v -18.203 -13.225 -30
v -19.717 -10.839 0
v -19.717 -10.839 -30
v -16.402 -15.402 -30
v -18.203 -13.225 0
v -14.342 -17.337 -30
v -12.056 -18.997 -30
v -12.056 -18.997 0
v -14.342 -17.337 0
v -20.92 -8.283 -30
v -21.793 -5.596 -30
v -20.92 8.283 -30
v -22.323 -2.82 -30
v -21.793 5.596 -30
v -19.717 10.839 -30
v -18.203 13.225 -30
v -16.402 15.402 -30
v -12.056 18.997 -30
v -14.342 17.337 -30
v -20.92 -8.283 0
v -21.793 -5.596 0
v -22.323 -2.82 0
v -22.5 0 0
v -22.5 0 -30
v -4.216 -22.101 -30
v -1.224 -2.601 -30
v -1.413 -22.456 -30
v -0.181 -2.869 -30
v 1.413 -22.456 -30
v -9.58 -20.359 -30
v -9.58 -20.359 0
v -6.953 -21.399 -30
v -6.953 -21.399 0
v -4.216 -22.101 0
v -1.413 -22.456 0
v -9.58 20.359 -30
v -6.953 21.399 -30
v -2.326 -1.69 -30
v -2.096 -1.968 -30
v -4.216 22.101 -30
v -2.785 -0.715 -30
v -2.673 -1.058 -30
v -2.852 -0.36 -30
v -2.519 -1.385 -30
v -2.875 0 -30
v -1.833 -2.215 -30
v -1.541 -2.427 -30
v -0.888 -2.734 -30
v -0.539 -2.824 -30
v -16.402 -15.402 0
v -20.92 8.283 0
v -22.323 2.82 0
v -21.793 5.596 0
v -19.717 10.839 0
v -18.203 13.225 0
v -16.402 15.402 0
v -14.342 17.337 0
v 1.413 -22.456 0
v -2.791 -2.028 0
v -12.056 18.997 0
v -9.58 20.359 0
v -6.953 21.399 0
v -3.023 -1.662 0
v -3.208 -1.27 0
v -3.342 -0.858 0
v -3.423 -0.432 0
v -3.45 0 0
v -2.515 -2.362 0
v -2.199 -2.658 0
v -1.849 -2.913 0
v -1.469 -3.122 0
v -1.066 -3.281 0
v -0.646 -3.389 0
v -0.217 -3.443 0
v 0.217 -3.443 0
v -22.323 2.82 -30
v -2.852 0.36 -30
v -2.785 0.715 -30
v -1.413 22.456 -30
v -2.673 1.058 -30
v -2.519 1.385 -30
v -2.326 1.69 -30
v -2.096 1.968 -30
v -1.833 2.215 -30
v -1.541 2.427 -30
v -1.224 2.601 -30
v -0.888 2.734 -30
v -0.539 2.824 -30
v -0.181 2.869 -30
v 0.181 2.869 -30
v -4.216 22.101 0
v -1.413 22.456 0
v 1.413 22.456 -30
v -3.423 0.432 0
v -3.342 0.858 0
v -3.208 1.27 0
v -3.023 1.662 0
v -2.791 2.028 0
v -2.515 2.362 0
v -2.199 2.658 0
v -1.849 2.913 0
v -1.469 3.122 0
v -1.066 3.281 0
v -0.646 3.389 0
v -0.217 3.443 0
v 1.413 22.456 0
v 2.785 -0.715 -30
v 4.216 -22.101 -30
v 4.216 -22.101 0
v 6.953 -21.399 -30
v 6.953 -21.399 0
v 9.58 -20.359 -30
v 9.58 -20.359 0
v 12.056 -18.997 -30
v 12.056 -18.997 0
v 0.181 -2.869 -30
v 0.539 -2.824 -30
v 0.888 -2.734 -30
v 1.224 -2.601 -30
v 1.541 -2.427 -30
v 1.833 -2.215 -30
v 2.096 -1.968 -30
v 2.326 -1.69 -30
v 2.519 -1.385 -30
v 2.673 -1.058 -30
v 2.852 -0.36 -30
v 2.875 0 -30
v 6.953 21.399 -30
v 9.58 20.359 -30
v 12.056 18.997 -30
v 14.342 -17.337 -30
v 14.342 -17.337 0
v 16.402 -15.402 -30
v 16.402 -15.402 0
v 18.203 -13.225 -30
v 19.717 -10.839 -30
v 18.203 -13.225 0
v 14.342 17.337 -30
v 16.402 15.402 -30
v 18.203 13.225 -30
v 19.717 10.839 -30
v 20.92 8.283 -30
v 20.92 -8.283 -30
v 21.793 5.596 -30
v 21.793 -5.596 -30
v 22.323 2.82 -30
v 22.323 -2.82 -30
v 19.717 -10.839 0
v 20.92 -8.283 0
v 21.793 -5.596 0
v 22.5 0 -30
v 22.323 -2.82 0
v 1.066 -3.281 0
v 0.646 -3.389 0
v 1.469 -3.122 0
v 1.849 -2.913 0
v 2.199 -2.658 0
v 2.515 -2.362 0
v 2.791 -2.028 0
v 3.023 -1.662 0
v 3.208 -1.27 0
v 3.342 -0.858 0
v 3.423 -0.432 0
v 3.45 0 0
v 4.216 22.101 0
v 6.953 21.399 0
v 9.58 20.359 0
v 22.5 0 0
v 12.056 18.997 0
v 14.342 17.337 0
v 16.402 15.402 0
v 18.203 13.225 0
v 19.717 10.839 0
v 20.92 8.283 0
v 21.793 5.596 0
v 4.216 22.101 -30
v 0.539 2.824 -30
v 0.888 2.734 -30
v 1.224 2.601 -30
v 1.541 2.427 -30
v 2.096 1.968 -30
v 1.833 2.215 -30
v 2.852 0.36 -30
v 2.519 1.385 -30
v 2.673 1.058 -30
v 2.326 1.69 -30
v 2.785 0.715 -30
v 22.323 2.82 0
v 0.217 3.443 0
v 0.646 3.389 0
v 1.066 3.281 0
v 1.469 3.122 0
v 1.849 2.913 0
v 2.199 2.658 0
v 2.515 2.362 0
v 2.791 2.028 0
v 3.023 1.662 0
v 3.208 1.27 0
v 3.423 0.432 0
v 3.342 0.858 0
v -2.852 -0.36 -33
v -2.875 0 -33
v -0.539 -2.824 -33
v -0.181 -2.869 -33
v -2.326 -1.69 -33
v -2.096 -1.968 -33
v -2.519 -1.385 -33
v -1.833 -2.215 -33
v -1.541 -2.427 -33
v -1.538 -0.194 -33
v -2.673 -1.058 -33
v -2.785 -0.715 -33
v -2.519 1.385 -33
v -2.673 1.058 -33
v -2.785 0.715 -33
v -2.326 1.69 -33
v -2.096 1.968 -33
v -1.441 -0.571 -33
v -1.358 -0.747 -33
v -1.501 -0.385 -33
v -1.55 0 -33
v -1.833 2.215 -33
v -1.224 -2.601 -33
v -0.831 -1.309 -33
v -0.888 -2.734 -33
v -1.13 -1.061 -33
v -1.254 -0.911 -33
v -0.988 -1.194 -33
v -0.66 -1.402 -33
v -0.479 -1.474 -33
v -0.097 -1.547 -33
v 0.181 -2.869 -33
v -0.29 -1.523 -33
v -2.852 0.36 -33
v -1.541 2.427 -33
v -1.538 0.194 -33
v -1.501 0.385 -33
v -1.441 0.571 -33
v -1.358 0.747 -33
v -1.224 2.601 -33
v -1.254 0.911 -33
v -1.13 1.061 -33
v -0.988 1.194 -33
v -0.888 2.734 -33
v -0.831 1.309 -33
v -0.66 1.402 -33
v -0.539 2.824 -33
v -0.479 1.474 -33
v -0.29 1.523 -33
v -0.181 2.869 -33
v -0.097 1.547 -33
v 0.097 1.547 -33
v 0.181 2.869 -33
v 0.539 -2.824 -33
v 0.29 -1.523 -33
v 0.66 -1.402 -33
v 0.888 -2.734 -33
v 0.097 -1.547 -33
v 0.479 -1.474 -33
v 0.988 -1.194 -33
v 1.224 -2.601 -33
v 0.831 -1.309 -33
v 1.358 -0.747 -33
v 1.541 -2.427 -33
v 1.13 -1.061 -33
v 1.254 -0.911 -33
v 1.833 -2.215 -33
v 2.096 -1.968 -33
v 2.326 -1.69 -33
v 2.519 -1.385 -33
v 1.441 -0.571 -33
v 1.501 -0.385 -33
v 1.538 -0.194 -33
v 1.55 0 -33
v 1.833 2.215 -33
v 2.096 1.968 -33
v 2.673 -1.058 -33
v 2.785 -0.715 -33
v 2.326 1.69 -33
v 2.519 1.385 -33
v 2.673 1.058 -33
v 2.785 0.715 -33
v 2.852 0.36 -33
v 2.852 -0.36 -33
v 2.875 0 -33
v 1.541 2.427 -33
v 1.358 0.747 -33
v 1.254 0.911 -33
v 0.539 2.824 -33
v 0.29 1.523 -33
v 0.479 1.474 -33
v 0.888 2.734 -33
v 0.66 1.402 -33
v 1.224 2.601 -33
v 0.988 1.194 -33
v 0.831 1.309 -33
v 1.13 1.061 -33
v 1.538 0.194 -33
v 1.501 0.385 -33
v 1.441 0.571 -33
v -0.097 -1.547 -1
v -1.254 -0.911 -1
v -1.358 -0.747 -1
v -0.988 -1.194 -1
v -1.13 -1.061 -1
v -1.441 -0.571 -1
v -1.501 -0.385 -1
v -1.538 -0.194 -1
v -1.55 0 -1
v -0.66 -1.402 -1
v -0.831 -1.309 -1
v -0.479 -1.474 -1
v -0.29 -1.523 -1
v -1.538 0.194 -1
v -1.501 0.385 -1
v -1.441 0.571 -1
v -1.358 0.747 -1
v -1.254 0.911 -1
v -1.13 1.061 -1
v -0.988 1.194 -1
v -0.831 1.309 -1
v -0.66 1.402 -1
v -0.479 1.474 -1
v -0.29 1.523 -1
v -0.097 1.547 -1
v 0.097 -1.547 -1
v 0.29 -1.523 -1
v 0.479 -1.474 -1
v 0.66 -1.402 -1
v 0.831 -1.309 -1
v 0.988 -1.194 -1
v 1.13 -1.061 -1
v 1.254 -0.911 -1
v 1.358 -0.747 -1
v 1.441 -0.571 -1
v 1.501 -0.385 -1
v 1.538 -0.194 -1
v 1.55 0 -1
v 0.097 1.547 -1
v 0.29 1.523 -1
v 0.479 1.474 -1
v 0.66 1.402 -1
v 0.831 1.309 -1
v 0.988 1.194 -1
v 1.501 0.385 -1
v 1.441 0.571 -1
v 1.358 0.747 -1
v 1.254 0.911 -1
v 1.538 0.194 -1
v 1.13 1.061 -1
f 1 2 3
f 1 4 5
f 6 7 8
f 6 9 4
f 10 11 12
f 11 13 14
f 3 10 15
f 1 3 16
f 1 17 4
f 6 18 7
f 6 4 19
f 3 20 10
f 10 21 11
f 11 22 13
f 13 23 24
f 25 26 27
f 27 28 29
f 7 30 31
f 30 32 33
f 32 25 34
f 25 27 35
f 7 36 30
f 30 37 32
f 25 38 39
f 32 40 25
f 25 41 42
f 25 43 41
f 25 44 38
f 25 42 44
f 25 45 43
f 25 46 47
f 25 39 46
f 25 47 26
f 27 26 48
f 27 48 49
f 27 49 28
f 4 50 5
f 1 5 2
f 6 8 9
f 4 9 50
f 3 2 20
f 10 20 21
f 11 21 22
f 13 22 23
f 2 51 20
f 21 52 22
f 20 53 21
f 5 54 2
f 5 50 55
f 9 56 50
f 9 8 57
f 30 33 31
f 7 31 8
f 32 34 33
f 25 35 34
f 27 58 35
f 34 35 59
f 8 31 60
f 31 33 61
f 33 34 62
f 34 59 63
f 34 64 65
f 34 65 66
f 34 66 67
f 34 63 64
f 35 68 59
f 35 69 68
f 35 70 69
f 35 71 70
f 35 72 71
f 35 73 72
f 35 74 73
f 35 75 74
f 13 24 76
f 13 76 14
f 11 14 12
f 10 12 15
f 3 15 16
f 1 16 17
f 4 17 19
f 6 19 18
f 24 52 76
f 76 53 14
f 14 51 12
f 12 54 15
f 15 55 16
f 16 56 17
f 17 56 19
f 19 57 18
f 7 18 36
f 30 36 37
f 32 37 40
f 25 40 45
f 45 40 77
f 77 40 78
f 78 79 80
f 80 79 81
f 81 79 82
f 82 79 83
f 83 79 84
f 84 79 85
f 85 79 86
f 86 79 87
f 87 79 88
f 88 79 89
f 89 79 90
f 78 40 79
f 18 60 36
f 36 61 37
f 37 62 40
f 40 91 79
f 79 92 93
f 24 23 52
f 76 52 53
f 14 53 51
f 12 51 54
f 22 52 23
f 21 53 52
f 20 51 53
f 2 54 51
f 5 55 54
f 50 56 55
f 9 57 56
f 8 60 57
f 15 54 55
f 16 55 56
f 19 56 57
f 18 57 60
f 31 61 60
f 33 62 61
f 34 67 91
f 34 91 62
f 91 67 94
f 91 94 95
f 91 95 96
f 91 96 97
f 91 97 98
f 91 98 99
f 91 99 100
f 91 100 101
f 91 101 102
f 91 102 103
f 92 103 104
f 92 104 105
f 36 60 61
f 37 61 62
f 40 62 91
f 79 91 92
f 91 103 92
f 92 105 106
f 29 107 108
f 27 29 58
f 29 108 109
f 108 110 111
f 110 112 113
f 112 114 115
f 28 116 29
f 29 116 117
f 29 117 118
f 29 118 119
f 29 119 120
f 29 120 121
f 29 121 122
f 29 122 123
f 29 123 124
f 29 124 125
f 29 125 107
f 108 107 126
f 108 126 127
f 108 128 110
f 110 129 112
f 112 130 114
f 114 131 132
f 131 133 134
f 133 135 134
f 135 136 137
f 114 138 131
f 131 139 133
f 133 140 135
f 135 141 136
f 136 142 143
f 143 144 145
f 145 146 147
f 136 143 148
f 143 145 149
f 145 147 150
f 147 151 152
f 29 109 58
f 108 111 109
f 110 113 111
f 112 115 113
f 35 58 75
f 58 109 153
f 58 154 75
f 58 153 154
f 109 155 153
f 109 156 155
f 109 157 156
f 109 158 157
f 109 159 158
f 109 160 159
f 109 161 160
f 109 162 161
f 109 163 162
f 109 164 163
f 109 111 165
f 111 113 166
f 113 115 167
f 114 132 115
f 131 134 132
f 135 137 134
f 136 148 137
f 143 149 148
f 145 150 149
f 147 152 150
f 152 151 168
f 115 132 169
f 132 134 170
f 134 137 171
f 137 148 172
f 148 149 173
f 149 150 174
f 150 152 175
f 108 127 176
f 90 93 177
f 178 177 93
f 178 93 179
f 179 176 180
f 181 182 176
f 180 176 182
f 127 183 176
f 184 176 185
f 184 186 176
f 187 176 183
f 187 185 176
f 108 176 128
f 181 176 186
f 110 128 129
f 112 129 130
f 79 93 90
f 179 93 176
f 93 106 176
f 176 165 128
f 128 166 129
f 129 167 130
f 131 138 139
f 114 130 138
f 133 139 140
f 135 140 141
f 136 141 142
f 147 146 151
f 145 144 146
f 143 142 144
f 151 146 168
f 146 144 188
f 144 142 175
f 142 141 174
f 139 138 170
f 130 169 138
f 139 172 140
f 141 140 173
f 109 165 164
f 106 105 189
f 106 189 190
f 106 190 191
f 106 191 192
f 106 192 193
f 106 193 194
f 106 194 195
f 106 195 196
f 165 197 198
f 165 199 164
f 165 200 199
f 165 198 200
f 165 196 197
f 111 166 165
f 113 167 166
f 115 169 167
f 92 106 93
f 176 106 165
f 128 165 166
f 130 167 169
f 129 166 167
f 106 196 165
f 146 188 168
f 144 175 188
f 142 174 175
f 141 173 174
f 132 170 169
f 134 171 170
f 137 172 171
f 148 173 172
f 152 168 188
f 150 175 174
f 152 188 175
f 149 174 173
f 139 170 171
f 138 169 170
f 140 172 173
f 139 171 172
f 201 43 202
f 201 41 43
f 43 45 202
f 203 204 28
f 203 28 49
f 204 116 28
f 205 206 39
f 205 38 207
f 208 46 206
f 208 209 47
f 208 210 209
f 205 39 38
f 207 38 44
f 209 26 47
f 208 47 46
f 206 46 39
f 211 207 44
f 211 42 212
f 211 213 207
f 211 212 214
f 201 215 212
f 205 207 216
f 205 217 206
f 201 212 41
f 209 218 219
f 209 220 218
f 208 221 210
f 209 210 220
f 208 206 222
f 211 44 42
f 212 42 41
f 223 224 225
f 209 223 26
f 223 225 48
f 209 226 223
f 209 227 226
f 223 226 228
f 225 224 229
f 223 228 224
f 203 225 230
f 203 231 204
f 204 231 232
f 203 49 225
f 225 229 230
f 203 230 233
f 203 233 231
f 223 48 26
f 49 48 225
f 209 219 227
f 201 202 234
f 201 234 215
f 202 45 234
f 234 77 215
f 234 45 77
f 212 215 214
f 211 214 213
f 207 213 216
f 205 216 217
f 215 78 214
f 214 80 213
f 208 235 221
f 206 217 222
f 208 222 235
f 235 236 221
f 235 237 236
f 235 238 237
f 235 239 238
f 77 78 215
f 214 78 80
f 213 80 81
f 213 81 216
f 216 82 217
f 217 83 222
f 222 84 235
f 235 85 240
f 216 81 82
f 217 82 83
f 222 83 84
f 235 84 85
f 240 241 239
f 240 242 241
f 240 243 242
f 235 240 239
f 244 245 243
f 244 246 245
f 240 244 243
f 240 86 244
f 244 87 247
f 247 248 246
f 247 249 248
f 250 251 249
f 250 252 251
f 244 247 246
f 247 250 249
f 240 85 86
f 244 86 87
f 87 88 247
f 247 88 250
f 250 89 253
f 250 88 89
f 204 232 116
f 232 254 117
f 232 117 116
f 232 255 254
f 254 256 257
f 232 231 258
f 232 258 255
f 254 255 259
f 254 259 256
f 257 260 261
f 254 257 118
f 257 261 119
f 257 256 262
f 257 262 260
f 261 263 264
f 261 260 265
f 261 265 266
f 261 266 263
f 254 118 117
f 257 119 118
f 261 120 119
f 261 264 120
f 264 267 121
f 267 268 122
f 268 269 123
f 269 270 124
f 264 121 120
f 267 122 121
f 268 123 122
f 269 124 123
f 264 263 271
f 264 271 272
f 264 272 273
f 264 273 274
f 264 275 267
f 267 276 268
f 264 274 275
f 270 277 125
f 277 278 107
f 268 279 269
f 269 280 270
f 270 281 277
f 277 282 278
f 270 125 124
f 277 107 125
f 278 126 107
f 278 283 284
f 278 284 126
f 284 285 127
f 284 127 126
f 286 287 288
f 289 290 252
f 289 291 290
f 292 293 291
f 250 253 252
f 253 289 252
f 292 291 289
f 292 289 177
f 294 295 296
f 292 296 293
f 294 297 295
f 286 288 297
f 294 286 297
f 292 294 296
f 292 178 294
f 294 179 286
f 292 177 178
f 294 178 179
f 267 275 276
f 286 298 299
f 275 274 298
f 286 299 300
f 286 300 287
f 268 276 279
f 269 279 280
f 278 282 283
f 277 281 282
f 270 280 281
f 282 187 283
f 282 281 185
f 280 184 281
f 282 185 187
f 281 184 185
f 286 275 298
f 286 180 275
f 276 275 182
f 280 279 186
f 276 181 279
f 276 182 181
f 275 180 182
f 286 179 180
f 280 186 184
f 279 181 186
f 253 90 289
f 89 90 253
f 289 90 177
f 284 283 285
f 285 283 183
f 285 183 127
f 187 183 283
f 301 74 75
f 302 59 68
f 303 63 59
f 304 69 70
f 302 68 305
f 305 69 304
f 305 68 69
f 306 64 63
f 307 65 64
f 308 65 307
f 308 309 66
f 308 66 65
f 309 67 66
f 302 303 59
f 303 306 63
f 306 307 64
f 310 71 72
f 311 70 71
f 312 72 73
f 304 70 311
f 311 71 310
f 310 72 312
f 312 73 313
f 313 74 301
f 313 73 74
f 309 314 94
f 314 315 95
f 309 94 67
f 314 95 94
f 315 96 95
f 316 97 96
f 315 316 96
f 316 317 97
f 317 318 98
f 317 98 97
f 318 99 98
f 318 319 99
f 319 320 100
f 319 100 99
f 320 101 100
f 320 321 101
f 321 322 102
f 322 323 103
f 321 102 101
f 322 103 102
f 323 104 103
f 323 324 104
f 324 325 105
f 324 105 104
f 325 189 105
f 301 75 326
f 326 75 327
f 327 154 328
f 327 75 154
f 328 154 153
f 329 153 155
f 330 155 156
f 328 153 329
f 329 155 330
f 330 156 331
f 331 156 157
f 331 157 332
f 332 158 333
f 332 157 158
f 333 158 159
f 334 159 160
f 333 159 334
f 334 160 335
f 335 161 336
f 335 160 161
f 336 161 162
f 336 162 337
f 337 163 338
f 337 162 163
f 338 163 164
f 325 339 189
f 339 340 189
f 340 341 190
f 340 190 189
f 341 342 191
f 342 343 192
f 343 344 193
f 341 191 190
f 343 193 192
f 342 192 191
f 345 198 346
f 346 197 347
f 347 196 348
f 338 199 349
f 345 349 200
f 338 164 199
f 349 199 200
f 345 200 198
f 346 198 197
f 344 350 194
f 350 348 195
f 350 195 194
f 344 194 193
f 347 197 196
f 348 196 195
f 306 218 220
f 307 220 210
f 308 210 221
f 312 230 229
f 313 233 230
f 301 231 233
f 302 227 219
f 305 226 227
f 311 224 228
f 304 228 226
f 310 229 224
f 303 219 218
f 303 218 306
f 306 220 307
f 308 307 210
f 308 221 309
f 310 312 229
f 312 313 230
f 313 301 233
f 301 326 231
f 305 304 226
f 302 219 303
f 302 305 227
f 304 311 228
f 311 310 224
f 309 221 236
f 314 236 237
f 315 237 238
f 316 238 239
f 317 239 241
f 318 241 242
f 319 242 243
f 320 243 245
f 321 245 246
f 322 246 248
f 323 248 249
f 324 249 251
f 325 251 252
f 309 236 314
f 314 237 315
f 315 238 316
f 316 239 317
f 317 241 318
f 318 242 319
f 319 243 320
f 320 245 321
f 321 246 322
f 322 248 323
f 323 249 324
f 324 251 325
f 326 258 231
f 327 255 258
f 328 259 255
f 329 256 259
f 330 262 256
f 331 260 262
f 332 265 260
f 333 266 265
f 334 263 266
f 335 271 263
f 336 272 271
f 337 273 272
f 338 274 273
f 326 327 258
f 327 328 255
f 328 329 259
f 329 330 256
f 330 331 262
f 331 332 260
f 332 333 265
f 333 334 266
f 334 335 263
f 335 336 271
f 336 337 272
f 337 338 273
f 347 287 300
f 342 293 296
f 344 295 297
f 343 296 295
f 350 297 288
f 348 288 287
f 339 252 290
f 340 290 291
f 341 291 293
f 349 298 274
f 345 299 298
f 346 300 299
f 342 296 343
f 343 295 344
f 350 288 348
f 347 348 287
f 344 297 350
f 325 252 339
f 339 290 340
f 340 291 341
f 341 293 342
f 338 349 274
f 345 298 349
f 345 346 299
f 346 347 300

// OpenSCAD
$fn = 50;

difference() {
	union() {
		translate(v = [0, 0, -30.0]) {
			cylinder(h = 30, r = 22.5);
		}
		#translate(v = [0, 0, -33.0]) {
			cylinder(h = 33, r = 2.875);
		}
	}
	union() {
		translate(v = [0, 0, 0]) {
			rotate(a = [0, 0, 0]) {
				difference() {
					union() {
						translate(v = [0, 0, -33.0]) {
							cylinder(h = 33, r = 1.25);
						}
						translate(v = [0, 0, -1.0]) {
							cylinder(h = 1.0, r1 = 1.55, r2 = 3.45);
						}
						translate(v = [0, 0, -33.0]) {
							cylinder(h = 33, r = 1.55);
						}
						translate(v = [0, 0, -33.0]) {
							cylinder(h = 33, r = 1.25);
						}
					}
					union();
				}
			}
		}
	}
}
